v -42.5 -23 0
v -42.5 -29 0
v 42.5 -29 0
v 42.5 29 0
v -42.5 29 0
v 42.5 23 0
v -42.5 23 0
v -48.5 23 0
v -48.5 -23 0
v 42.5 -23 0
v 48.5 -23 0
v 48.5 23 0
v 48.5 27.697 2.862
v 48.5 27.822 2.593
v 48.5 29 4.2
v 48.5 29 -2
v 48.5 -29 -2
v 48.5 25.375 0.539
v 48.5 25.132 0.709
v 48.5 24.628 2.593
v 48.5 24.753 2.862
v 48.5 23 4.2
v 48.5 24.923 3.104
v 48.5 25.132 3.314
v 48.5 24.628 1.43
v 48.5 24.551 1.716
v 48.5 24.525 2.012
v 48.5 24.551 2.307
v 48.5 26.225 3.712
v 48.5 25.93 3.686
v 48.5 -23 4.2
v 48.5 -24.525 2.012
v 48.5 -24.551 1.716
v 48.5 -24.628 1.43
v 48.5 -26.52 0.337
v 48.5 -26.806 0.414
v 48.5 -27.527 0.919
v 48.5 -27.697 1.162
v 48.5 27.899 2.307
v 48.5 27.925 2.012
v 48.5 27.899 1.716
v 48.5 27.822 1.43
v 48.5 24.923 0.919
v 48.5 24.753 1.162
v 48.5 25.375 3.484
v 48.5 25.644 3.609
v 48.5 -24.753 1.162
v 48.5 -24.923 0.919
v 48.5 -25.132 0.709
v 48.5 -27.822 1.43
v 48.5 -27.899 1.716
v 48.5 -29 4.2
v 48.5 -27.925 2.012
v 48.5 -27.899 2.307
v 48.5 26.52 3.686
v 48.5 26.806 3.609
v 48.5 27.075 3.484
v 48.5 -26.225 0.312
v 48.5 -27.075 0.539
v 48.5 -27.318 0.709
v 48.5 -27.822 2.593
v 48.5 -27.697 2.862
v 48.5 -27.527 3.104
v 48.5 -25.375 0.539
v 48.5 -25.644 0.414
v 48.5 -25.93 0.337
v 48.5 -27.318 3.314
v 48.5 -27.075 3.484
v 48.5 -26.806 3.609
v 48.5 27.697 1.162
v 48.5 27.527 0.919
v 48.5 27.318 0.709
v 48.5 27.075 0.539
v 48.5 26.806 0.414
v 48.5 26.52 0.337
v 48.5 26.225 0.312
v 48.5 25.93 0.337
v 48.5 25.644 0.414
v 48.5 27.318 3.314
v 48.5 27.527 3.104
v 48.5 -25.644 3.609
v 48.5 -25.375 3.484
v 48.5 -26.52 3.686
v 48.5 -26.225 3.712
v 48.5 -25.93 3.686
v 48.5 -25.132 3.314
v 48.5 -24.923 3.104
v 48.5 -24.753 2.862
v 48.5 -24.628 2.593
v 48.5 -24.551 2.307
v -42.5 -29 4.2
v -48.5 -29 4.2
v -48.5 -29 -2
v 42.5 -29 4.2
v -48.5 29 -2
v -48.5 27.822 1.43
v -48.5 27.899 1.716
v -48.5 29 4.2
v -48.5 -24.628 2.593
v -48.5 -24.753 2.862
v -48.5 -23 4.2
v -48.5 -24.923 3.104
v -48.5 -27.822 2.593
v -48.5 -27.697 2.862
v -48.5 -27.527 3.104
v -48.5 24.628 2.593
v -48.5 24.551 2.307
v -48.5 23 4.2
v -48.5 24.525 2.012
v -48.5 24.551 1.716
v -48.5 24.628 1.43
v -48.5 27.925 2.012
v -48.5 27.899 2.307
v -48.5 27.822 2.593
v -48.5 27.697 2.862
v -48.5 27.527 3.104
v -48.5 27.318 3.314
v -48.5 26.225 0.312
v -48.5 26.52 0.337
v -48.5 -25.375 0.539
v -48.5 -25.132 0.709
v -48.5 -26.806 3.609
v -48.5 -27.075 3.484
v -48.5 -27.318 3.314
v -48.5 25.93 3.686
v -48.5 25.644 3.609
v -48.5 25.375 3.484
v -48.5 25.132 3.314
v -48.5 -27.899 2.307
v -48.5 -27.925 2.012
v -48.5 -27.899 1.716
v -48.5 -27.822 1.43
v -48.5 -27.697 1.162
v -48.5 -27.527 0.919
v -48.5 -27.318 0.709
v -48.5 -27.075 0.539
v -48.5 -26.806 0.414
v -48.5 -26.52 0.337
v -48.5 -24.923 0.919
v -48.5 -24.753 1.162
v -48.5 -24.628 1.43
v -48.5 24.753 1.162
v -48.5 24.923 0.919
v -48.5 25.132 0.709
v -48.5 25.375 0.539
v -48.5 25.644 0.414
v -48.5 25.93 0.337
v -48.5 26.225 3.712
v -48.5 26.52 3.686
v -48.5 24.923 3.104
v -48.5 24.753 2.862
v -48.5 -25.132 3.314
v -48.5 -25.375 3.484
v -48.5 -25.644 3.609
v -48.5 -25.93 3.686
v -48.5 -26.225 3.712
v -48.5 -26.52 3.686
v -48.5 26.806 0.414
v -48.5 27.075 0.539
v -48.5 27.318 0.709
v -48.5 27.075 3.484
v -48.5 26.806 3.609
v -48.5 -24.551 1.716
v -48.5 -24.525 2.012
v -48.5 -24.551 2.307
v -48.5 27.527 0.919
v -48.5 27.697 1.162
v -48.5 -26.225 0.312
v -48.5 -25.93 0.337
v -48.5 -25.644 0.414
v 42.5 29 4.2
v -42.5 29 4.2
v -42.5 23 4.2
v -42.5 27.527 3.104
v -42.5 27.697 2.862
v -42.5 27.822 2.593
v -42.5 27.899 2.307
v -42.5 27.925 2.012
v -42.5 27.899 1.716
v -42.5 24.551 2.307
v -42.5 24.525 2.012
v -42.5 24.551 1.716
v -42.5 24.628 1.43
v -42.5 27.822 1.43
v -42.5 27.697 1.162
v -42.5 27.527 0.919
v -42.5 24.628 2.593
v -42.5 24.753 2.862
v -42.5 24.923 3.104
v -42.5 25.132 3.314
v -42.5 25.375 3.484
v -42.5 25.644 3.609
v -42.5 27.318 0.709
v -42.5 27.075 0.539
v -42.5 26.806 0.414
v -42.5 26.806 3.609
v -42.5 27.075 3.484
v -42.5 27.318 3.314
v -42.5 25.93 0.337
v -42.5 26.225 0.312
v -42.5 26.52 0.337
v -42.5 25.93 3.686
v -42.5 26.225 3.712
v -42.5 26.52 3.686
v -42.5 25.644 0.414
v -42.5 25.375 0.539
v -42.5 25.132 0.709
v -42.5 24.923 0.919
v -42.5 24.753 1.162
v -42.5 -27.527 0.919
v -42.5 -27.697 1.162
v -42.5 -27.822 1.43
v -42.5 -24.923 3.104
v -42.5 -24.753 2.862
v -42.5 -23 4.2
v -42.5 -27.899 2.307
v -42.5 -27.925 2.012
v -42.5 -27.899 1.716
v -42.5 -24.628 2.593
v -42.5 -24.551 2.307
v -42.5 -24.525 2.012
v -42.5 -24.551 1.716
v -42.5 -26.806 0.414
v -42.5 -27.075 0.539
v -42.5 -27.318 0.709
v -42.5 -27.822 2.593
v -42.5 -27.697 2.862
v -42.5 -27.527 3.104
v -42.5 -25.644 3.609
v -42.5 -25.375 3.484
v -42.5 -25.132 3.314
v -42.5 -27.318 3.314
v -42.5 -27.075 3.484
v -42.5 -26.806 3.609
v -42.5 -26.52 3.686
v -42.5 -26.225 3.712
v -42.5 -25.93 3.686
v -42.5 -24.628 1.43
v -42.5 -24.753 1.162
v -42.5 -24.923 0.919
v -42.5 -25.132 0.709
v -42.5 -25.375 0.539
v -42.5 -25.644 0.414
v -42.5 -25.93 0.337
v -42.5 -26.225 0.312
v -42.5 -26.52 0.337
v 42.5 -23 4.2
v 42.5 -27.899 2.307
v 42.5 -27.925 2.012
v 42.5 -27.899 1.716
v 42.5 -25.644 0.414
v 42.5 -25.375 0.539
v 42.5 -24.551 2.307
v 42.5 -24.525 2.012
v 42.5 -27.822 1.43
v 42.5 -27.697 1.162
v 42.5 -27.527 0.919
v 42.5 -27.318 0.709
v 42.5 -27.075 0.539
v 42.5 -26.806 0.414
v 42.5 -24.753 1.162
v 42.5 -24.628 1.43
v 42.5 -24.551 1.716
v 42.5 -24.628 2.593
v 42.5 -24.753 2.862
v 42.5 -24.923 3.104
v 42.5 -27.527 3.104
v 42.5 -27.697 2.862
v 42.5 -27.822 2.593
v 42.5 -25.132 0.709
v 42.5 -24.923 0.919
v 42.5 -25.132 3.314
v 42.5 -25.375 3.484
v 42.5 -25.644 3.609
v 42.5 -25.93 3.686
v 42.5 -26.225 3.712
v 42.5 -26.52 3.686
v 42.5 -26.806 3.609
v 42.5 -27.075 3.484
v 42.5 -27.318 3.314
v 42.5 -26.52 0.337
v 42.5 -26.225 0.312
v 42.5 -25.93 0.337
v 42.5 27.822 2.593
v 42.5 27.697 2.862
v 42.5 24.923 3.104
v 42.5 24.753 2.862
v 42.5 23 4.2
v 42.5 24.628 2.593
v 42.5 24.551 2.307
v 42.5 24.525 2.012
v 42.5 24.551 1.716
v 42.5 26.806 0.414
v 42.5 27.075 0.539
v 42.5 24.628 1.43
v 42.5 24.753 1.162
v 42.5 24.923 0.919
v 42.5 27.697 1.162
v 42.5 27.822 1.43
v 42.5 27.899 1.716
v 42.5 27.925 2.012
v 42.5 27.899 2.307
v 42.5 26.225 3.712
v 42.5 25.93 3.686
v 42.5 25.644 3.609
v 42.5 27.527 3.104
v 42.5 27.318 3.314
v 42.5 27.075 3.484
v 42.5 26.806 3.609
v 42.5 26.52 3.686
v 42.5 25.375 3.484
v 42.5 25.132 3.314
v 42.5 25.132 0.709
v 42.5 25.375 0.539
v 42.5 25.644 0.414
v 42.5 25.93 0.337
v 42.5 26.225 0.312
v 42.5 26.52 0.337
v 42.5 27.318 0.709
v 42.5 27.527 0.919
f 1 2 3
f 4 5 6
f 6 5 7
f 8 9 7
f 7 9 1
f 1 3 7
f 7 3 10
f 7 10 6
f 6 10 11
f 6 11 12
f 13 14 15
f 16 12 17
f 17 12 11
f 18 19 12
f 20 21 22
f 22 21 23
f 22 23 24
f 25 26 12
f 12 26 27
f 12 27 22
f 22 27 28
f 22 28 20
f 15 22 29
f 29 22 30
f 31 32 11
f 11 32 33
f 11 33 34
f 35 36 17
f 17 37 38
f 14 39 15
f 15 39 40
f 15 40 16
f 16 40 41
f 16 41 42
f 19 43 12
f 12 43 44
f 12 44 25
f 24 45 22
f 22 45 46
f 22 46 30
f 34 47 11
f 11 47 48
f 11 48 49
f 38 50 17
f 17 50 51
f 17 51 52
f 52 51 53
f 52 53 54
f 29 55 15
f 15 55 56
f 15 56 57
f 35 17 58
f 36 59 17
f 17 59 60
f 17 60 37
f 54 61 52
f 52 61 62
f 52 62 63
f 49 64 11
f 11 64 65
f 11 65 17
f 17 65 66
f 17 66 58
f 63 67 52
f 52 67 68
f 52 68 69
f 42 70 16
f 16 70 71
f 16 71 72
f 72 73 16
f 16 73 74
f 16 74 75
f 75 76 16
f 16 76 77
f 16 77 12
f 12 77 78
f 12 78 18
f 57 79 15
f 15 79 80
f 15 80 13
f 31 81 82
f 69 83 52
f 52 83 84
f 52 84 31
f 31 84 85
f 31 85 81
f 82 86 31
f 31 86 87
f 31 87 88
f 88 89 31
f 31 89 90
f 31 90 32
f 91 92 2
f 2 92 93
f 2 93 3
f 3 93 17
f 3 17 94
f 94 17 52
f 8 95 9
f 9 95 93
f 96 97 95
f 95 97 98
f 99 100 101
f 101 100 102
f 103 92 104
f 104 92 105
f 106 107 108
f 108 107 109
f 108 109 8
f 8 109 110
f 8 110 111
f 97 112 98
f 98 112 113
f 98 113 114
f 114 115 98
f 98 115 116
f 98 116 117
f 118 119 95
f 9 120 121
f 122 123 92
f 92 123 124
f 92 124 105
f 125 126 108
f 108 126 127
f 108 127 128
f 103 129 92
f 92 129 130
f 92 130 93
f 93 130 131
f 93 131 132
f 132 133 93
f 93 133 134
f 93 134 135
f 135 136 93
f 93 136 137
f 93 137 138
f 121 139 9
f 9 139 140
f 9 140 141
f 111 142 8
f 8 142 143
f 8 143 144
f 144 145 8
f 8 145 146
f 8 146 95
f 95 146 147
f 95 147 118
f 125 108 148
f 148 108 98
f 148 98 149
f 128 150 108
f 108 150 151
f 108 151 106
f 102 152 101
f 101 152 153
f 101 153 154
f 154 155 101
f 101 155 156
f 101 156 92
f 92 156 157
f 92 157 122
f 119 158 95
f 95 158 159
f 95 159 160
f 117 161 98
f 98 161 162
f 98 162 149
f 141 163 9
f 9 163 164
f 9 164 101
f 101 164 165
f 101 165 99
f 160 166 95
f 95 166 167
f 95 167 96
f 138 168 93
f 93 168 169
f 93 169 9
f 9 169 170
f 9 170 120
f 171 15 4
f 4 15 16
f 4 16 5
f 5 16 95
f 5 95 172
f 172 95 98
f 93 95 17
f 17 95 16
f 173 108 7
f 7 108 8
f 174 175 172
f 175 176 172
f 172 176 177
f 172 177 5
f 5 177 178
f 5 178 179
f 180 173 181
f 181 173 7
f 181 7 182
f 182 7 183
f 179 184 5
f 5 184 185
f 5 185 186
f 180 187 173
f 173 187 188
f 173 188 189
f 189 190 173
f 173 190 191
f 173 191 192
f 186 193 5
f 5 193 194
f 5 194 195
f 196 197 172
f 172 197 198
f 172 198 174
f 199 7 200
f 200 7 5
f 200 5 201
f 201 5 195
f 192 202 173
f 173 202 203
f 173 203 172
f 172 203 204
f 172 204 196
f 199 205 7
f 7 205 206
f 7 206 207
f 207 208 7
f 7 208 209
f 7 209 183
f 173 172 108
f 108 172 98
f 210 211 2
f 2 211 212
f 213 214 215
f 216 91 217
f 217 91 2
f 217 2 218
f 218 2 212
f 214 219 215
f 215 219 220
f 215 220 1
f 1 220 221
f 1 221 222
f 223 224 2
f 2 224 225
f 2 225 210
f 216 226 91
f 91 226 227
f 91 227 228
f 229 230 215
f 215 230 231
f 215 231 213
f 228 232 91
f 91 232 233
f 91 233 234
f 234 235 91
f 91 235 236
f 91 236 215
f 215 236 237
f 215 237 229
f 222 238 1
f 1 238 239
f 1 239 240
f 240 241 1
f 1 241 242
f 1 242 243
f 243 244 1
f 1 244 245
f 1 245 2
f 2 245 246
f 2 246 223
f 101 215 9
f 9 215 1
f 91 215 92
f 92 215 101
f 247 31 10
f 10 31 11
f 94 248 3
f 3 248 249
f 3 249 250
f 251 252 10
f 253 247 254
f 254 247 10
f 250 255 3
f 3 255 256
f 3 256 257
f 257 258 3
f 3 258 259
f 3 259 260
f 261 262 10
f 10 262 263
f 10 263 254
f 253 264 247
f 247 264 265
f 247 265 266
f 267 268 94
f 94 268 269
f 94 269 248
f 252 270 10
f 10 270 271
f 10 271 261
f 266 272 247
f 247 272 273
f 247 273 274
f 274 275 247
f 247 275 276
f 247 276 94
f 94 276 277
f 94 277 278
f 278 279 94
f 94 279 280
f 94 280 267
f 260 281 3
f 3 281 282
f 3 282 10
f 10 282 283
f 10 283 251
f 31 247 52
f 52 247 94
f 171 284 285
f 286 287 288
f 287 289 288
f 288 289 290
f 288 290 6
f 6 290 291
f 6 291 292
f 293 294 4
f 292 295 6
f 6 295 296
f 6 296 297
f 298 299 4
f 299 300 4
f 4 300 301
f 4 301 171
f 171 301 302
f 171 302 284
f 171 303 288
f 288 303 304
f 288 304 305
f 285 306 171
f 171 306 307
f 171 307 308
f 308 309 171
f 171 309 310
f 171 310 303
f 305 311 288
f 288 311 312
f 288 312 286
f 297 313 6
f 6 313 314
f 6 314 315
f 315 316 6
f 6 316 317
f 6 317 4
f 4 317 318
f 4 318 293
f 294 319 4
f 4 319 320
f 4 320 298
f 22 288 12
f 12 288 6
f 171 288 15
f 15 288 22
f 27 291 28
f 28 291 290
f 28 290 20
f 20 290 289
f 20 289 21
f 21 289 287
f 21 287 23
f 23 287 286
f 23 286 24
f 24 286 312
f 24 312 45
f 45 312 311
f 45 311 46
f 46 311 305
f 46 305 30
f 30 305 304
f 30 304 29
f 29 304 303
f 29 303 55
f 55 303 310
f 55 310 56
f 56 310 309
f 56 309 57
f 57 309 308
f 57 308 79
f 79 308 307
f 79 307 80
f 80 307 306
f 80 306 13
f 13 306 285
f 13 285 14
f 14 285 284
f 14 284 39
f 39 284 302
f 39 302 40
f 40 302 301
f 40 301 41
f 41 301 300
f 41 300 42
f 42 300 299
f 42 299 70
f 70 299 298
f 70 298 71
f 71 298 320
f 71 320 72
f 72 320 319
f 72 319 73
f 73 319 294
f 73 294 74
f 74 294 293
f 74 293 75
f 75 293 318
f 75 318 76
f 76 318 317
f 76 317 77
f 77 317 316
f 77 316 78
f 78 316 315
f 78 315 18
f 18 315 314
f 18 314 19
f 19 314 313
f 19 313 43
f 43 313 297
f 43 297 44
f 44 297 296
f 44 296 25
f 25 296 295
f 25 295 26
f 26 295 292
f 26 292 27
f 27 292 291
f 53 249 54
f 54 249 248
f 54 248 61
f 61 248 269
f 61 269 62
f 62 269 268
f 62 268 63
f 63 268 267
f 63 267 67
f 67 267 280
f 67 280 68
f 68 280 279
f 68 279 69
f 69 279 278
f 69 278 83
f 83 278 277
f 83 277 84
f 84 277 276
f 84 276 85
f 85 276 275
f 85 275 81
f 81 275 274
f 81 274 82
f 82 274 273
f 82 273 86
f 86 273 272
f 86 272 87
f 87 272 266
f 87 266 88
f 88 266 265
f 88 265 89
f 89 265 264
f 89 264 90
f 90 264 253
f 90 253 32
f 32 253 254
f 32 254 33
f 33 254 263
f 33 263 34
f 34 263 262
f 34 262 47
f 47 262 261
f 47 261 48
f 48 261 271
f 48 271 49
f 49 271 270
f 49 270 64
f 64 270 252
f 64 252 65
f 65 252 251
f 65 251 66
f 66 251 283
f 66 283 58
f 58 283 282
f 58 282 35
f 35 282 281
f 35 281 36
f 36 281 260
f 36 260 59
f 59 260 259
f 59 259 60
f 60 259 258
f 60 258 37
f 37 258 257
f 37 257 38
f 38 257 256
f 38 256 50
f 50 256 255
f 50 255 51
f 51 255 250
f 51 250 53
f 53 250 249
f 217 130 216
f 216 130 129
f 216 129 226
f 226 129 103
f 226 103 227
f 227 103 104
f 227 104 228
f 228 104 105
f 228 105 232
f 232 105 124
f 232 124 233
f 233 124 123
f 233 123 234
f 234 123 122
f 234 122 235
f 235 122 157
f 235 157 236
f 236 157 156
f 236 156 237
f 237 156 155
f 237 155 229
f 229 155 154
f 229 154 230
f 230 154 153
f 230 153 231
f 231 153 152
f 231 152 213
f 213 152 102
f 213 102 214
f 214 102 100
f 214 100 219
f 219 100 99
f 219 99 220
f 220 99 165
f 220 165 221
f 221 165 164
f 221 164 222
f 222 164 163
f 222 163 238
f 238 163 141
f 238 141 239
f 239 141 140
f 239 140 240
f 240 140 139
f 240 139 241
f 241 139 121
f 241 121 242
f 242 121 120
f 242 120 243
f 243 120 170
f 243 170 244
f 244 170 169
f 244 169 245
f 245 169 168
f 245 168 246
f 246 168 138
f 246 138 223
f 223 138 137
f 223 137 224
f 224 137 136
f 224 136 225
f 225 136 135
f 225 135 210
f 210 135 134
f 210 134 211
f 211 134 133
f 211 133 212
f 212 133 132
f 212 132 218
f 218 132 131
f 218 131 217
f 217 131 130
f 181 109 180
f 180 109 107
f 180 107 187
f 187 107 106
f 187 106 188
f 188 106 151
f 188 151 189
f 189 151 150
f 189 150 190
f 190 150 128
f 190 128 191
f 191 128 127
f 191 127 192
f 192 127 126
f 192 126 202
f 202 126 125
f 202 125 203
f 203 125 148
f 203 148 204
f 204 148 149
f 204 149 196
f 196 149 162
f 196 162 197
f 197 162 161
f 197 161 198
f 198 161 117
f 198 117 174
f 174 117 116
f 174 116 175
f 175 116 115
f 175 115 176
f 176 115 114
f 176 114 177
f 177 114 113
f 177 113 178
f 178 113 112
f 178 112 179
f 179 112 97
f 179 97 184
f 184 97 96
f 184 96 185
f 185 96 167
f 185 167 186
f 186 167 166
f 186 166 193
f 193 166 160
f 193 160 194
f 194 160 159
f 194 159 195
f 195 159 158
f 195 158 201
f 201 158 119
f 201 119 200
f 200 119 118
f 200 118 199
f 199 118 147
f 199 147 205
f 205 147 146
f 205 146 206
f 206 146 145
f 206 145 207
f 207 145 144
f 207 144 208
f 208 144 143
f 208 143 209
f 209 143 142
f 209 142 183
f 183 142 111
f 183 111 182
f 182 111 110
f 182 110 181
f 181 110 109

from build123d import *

# Parameters (mm, degrees)
CROQUIS1_W              = 97
CROQUIS1_H              = 58
SALIENTE_EXTRUIR1_DEPTH = 2
CROQUIS2_W              = 6
CROQUIS2_H              = 6
SALIENTE_EXTRUIR2_DEPTH = 4.2
CROQUIS3_R              = 1.7
CORTAR_EXTRUIR1_DEPTH   = 102.329363957


with BuildPart() as part:
    # Croquis1 → Saliente-Extruir1 (new body)
    with BuildSketch(Plane.XY):
        Rectangle(CROQUIS1_W, CROQUIS1_H)
    extrude(amount=-SALIENTE_EXTRUIR1_DEPTH)

    # Croquis2 → Saliente-Extruir2 (add)
    with BuildSketch(Plane.XY):
        with Locations((-45.5, 26)):
            Rectangle(CROQUIS2_W, CROQUIS2_H)
        with Locations((-45.5, -26)):
            Rectangle(CROQUIS2_W, CROQUIS2_H)
        with Locations((45.5, -26)):
            Rectangle(CROQUIS2_W, CROQUIS2_H)
        with Locations((45.5, 26)):
            Rectangle(CROQUIS2_W, CROQUIS2_H)
    extrude(amount=SALIENTE_EXTRUIR2_DEPTH)

    # Croquis3 → Cortar-Extruir1 (cut, through all)
    with BuildSketch(Plane.ZY.offset(48.5)):
        with Locations(Location((2.011535927, 26.225, 0), (0, 0, 270))):
            Circle(CROQUIS3_R)
        with Locations(Location((2.011535927, -26.225, 0), (0, 0, 270))):
            Circle(CROQUIS3_R)
    extrude(amount=-CORTAR_EXTRUIR1_DEPTH, mode=Mode.SUBTRACT)


solid = part.part
